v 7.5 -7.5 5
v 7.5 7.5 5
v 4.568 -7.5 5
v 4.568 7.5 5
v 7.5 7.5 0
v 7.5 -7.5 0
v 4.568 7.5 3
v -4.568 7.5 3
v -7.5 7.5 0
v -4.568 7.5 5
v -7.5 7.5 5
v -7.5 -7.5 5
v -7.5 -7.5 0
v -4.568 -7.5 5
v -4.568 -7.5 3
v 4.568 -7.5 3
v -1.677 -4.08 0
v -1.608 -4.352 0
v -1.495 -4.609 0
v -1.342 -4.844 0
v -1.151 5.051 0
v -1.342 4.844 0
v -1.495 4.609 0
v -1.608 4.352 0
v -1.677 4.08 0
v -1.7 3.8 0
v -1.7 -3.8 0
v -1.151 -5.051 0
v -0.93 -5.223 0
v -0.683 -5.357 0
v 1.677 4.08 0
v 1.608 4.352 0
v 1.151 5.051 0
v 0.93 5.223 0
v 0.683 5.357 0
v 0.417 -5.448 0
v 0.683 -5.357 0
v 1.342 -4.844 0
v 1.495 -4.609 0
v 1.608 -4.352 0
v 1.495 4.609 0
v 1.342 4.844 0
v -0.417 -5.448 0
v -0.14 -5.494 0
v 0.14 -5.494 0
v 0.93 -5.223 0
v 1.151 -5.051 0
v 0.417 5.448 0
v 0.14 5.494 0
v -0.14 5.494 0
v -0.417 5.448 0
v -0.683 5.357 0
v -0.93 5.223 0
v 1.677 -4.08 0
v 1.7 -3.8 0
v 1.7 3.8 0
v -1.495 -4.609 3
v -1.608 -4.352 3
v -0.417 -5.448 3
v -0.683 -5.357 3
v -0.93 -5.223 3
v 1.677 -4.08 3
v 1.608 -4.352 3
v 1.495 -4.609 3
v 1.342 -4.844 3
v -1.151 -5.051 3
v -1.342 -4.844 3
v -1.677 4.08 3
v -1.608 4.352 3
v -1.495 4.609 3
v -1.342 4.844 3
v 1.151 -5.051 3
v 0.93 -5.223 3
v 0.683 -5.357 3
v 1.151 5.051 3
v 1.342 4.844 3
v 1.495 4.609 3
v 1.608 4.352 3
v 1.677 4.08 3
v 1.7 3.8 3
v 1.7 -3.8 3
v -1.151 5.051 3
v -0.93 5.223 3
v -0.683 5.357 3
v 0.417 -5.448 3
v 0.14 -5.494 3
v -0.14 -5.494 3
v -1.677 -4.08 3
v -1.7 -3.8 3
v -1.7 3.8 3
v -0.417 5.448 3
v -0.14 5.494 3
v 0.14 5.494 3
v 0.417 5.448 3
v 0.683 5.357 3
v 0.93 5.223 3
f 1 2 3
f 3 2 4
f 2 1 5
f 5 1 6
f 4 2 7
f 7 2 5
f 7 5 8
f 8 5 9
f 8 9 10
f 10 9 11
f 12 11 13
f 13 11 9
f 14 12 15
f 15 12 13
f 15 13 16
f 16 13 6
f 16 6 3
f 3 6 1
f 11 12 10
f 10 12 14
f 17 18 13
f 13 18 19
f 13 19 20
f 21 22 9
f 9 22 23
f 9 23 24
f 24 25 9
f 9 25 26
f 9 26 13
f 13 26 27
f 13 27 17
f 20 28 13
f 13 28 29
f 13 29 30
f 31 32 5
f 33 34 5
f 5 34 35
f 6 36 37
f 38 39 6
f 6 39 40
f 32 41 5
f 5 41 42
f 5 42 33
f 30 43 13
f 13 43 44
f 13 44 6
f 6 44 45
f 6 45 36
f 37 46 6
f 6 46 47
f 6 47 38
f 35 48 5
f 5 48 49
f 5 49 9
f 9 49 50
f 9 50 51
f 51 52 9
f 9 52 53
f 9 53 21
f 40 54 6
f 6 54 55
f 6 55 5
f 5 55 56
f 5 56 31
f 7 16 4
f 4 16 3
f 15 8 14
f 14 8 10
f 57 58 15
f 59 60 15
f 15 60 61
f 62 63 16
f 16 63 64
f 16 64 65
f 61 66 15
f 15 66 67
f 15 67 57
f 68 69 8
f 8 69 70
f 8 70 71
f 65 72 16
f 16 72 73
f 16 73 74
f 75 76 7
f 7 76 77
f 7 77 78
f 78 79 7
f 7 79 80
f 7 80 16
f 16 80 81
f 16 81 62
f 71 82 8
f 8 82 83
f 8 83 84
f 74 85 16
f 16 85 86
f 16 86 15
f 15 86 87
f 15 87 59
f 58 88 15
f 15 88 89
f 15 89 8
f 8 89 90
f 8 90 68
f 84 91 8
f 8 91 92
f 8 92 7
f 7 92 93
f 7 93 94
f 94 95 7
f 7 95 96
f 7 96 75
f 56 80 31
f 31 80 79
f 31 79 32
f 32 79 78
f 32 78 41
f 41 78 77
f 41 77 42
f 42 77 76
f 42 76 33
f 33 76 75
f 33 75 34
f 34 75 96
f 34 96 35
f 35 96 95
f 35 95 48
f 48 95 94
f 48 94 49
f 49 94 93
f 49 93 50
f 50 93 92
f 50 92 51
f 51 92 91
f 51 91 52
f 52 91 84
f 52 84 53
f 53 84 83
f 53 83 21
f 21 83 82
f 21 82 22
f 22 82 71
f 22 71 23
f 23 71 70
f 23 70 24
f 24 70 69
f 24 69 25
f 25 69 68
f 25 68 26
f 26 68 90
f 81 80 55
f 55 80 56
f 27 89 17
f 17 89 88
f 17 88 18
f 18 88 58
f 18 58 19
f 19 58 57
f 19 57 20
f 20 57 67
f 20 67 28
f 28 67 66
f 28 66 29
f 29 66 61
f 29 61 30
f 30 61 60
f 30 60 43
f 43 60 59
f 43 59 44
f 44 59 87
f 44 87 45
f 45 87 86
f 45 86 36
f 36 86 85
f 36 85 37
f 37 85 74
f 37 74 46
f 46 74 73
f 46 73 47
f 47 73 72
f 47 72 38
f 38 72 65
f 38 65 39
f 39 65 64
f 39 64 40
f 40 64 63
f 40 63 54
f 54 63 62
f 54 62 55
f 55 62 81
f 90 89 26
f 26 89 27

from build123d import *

# Parameters (mm, degrees)
SKETCH1_W           = 15
SKETCH1_H           = 15
BOSS_EXTRUDE1_DEPTH = 5
SKETCH2_W           = 9.136161194
SKETCH2_H           = 15
CUT_EXTRUDE1_DEPTH  = 2
CUT_EXTRUDE2_DEPTH  = 12


with BuildPart() as part:
    # Sketch1 → Boss-Extrude1 (new body)
    with BuildSketch(Plane.XY):
        Rectangle(SKETCH1_W, SKETCH1_H)
    extrude(amount=BOSS_EXTRUDE1_DEPTH)

    # Sketch2 → Cut-Extrude1 (cut)
    with BuildSketch(Plane.XY.offset(5)):
        Rectangle(SKETCH2_W, SKETCH2_H)
    extrude(amount=-CUT_EXTRUDE1_DEPTH, mode=Mode.SUBTRACT)

    # Sketch3 → Cut-Extrude2 (cut)
    with BuildSketch(Plane.XY.offset(3)):
        with BuildLine():
            Line((-1.7, 3.8), (-1.7, -3.8))
            ThreePointArc((-1.7, -3.8), (0, -5.5), (1.7, -3.8))
            Line((1.7, -3.8), (1.7, 3.8))
            ThreePointArc((1.7, 3.8), (0, 5.5), (-1.7, 3.8))
        make_face()
    extrude(amount=-CUT_EXTRUDE2_DEPTH, mode=Mode.SUBTRACT)


solid = part.part
